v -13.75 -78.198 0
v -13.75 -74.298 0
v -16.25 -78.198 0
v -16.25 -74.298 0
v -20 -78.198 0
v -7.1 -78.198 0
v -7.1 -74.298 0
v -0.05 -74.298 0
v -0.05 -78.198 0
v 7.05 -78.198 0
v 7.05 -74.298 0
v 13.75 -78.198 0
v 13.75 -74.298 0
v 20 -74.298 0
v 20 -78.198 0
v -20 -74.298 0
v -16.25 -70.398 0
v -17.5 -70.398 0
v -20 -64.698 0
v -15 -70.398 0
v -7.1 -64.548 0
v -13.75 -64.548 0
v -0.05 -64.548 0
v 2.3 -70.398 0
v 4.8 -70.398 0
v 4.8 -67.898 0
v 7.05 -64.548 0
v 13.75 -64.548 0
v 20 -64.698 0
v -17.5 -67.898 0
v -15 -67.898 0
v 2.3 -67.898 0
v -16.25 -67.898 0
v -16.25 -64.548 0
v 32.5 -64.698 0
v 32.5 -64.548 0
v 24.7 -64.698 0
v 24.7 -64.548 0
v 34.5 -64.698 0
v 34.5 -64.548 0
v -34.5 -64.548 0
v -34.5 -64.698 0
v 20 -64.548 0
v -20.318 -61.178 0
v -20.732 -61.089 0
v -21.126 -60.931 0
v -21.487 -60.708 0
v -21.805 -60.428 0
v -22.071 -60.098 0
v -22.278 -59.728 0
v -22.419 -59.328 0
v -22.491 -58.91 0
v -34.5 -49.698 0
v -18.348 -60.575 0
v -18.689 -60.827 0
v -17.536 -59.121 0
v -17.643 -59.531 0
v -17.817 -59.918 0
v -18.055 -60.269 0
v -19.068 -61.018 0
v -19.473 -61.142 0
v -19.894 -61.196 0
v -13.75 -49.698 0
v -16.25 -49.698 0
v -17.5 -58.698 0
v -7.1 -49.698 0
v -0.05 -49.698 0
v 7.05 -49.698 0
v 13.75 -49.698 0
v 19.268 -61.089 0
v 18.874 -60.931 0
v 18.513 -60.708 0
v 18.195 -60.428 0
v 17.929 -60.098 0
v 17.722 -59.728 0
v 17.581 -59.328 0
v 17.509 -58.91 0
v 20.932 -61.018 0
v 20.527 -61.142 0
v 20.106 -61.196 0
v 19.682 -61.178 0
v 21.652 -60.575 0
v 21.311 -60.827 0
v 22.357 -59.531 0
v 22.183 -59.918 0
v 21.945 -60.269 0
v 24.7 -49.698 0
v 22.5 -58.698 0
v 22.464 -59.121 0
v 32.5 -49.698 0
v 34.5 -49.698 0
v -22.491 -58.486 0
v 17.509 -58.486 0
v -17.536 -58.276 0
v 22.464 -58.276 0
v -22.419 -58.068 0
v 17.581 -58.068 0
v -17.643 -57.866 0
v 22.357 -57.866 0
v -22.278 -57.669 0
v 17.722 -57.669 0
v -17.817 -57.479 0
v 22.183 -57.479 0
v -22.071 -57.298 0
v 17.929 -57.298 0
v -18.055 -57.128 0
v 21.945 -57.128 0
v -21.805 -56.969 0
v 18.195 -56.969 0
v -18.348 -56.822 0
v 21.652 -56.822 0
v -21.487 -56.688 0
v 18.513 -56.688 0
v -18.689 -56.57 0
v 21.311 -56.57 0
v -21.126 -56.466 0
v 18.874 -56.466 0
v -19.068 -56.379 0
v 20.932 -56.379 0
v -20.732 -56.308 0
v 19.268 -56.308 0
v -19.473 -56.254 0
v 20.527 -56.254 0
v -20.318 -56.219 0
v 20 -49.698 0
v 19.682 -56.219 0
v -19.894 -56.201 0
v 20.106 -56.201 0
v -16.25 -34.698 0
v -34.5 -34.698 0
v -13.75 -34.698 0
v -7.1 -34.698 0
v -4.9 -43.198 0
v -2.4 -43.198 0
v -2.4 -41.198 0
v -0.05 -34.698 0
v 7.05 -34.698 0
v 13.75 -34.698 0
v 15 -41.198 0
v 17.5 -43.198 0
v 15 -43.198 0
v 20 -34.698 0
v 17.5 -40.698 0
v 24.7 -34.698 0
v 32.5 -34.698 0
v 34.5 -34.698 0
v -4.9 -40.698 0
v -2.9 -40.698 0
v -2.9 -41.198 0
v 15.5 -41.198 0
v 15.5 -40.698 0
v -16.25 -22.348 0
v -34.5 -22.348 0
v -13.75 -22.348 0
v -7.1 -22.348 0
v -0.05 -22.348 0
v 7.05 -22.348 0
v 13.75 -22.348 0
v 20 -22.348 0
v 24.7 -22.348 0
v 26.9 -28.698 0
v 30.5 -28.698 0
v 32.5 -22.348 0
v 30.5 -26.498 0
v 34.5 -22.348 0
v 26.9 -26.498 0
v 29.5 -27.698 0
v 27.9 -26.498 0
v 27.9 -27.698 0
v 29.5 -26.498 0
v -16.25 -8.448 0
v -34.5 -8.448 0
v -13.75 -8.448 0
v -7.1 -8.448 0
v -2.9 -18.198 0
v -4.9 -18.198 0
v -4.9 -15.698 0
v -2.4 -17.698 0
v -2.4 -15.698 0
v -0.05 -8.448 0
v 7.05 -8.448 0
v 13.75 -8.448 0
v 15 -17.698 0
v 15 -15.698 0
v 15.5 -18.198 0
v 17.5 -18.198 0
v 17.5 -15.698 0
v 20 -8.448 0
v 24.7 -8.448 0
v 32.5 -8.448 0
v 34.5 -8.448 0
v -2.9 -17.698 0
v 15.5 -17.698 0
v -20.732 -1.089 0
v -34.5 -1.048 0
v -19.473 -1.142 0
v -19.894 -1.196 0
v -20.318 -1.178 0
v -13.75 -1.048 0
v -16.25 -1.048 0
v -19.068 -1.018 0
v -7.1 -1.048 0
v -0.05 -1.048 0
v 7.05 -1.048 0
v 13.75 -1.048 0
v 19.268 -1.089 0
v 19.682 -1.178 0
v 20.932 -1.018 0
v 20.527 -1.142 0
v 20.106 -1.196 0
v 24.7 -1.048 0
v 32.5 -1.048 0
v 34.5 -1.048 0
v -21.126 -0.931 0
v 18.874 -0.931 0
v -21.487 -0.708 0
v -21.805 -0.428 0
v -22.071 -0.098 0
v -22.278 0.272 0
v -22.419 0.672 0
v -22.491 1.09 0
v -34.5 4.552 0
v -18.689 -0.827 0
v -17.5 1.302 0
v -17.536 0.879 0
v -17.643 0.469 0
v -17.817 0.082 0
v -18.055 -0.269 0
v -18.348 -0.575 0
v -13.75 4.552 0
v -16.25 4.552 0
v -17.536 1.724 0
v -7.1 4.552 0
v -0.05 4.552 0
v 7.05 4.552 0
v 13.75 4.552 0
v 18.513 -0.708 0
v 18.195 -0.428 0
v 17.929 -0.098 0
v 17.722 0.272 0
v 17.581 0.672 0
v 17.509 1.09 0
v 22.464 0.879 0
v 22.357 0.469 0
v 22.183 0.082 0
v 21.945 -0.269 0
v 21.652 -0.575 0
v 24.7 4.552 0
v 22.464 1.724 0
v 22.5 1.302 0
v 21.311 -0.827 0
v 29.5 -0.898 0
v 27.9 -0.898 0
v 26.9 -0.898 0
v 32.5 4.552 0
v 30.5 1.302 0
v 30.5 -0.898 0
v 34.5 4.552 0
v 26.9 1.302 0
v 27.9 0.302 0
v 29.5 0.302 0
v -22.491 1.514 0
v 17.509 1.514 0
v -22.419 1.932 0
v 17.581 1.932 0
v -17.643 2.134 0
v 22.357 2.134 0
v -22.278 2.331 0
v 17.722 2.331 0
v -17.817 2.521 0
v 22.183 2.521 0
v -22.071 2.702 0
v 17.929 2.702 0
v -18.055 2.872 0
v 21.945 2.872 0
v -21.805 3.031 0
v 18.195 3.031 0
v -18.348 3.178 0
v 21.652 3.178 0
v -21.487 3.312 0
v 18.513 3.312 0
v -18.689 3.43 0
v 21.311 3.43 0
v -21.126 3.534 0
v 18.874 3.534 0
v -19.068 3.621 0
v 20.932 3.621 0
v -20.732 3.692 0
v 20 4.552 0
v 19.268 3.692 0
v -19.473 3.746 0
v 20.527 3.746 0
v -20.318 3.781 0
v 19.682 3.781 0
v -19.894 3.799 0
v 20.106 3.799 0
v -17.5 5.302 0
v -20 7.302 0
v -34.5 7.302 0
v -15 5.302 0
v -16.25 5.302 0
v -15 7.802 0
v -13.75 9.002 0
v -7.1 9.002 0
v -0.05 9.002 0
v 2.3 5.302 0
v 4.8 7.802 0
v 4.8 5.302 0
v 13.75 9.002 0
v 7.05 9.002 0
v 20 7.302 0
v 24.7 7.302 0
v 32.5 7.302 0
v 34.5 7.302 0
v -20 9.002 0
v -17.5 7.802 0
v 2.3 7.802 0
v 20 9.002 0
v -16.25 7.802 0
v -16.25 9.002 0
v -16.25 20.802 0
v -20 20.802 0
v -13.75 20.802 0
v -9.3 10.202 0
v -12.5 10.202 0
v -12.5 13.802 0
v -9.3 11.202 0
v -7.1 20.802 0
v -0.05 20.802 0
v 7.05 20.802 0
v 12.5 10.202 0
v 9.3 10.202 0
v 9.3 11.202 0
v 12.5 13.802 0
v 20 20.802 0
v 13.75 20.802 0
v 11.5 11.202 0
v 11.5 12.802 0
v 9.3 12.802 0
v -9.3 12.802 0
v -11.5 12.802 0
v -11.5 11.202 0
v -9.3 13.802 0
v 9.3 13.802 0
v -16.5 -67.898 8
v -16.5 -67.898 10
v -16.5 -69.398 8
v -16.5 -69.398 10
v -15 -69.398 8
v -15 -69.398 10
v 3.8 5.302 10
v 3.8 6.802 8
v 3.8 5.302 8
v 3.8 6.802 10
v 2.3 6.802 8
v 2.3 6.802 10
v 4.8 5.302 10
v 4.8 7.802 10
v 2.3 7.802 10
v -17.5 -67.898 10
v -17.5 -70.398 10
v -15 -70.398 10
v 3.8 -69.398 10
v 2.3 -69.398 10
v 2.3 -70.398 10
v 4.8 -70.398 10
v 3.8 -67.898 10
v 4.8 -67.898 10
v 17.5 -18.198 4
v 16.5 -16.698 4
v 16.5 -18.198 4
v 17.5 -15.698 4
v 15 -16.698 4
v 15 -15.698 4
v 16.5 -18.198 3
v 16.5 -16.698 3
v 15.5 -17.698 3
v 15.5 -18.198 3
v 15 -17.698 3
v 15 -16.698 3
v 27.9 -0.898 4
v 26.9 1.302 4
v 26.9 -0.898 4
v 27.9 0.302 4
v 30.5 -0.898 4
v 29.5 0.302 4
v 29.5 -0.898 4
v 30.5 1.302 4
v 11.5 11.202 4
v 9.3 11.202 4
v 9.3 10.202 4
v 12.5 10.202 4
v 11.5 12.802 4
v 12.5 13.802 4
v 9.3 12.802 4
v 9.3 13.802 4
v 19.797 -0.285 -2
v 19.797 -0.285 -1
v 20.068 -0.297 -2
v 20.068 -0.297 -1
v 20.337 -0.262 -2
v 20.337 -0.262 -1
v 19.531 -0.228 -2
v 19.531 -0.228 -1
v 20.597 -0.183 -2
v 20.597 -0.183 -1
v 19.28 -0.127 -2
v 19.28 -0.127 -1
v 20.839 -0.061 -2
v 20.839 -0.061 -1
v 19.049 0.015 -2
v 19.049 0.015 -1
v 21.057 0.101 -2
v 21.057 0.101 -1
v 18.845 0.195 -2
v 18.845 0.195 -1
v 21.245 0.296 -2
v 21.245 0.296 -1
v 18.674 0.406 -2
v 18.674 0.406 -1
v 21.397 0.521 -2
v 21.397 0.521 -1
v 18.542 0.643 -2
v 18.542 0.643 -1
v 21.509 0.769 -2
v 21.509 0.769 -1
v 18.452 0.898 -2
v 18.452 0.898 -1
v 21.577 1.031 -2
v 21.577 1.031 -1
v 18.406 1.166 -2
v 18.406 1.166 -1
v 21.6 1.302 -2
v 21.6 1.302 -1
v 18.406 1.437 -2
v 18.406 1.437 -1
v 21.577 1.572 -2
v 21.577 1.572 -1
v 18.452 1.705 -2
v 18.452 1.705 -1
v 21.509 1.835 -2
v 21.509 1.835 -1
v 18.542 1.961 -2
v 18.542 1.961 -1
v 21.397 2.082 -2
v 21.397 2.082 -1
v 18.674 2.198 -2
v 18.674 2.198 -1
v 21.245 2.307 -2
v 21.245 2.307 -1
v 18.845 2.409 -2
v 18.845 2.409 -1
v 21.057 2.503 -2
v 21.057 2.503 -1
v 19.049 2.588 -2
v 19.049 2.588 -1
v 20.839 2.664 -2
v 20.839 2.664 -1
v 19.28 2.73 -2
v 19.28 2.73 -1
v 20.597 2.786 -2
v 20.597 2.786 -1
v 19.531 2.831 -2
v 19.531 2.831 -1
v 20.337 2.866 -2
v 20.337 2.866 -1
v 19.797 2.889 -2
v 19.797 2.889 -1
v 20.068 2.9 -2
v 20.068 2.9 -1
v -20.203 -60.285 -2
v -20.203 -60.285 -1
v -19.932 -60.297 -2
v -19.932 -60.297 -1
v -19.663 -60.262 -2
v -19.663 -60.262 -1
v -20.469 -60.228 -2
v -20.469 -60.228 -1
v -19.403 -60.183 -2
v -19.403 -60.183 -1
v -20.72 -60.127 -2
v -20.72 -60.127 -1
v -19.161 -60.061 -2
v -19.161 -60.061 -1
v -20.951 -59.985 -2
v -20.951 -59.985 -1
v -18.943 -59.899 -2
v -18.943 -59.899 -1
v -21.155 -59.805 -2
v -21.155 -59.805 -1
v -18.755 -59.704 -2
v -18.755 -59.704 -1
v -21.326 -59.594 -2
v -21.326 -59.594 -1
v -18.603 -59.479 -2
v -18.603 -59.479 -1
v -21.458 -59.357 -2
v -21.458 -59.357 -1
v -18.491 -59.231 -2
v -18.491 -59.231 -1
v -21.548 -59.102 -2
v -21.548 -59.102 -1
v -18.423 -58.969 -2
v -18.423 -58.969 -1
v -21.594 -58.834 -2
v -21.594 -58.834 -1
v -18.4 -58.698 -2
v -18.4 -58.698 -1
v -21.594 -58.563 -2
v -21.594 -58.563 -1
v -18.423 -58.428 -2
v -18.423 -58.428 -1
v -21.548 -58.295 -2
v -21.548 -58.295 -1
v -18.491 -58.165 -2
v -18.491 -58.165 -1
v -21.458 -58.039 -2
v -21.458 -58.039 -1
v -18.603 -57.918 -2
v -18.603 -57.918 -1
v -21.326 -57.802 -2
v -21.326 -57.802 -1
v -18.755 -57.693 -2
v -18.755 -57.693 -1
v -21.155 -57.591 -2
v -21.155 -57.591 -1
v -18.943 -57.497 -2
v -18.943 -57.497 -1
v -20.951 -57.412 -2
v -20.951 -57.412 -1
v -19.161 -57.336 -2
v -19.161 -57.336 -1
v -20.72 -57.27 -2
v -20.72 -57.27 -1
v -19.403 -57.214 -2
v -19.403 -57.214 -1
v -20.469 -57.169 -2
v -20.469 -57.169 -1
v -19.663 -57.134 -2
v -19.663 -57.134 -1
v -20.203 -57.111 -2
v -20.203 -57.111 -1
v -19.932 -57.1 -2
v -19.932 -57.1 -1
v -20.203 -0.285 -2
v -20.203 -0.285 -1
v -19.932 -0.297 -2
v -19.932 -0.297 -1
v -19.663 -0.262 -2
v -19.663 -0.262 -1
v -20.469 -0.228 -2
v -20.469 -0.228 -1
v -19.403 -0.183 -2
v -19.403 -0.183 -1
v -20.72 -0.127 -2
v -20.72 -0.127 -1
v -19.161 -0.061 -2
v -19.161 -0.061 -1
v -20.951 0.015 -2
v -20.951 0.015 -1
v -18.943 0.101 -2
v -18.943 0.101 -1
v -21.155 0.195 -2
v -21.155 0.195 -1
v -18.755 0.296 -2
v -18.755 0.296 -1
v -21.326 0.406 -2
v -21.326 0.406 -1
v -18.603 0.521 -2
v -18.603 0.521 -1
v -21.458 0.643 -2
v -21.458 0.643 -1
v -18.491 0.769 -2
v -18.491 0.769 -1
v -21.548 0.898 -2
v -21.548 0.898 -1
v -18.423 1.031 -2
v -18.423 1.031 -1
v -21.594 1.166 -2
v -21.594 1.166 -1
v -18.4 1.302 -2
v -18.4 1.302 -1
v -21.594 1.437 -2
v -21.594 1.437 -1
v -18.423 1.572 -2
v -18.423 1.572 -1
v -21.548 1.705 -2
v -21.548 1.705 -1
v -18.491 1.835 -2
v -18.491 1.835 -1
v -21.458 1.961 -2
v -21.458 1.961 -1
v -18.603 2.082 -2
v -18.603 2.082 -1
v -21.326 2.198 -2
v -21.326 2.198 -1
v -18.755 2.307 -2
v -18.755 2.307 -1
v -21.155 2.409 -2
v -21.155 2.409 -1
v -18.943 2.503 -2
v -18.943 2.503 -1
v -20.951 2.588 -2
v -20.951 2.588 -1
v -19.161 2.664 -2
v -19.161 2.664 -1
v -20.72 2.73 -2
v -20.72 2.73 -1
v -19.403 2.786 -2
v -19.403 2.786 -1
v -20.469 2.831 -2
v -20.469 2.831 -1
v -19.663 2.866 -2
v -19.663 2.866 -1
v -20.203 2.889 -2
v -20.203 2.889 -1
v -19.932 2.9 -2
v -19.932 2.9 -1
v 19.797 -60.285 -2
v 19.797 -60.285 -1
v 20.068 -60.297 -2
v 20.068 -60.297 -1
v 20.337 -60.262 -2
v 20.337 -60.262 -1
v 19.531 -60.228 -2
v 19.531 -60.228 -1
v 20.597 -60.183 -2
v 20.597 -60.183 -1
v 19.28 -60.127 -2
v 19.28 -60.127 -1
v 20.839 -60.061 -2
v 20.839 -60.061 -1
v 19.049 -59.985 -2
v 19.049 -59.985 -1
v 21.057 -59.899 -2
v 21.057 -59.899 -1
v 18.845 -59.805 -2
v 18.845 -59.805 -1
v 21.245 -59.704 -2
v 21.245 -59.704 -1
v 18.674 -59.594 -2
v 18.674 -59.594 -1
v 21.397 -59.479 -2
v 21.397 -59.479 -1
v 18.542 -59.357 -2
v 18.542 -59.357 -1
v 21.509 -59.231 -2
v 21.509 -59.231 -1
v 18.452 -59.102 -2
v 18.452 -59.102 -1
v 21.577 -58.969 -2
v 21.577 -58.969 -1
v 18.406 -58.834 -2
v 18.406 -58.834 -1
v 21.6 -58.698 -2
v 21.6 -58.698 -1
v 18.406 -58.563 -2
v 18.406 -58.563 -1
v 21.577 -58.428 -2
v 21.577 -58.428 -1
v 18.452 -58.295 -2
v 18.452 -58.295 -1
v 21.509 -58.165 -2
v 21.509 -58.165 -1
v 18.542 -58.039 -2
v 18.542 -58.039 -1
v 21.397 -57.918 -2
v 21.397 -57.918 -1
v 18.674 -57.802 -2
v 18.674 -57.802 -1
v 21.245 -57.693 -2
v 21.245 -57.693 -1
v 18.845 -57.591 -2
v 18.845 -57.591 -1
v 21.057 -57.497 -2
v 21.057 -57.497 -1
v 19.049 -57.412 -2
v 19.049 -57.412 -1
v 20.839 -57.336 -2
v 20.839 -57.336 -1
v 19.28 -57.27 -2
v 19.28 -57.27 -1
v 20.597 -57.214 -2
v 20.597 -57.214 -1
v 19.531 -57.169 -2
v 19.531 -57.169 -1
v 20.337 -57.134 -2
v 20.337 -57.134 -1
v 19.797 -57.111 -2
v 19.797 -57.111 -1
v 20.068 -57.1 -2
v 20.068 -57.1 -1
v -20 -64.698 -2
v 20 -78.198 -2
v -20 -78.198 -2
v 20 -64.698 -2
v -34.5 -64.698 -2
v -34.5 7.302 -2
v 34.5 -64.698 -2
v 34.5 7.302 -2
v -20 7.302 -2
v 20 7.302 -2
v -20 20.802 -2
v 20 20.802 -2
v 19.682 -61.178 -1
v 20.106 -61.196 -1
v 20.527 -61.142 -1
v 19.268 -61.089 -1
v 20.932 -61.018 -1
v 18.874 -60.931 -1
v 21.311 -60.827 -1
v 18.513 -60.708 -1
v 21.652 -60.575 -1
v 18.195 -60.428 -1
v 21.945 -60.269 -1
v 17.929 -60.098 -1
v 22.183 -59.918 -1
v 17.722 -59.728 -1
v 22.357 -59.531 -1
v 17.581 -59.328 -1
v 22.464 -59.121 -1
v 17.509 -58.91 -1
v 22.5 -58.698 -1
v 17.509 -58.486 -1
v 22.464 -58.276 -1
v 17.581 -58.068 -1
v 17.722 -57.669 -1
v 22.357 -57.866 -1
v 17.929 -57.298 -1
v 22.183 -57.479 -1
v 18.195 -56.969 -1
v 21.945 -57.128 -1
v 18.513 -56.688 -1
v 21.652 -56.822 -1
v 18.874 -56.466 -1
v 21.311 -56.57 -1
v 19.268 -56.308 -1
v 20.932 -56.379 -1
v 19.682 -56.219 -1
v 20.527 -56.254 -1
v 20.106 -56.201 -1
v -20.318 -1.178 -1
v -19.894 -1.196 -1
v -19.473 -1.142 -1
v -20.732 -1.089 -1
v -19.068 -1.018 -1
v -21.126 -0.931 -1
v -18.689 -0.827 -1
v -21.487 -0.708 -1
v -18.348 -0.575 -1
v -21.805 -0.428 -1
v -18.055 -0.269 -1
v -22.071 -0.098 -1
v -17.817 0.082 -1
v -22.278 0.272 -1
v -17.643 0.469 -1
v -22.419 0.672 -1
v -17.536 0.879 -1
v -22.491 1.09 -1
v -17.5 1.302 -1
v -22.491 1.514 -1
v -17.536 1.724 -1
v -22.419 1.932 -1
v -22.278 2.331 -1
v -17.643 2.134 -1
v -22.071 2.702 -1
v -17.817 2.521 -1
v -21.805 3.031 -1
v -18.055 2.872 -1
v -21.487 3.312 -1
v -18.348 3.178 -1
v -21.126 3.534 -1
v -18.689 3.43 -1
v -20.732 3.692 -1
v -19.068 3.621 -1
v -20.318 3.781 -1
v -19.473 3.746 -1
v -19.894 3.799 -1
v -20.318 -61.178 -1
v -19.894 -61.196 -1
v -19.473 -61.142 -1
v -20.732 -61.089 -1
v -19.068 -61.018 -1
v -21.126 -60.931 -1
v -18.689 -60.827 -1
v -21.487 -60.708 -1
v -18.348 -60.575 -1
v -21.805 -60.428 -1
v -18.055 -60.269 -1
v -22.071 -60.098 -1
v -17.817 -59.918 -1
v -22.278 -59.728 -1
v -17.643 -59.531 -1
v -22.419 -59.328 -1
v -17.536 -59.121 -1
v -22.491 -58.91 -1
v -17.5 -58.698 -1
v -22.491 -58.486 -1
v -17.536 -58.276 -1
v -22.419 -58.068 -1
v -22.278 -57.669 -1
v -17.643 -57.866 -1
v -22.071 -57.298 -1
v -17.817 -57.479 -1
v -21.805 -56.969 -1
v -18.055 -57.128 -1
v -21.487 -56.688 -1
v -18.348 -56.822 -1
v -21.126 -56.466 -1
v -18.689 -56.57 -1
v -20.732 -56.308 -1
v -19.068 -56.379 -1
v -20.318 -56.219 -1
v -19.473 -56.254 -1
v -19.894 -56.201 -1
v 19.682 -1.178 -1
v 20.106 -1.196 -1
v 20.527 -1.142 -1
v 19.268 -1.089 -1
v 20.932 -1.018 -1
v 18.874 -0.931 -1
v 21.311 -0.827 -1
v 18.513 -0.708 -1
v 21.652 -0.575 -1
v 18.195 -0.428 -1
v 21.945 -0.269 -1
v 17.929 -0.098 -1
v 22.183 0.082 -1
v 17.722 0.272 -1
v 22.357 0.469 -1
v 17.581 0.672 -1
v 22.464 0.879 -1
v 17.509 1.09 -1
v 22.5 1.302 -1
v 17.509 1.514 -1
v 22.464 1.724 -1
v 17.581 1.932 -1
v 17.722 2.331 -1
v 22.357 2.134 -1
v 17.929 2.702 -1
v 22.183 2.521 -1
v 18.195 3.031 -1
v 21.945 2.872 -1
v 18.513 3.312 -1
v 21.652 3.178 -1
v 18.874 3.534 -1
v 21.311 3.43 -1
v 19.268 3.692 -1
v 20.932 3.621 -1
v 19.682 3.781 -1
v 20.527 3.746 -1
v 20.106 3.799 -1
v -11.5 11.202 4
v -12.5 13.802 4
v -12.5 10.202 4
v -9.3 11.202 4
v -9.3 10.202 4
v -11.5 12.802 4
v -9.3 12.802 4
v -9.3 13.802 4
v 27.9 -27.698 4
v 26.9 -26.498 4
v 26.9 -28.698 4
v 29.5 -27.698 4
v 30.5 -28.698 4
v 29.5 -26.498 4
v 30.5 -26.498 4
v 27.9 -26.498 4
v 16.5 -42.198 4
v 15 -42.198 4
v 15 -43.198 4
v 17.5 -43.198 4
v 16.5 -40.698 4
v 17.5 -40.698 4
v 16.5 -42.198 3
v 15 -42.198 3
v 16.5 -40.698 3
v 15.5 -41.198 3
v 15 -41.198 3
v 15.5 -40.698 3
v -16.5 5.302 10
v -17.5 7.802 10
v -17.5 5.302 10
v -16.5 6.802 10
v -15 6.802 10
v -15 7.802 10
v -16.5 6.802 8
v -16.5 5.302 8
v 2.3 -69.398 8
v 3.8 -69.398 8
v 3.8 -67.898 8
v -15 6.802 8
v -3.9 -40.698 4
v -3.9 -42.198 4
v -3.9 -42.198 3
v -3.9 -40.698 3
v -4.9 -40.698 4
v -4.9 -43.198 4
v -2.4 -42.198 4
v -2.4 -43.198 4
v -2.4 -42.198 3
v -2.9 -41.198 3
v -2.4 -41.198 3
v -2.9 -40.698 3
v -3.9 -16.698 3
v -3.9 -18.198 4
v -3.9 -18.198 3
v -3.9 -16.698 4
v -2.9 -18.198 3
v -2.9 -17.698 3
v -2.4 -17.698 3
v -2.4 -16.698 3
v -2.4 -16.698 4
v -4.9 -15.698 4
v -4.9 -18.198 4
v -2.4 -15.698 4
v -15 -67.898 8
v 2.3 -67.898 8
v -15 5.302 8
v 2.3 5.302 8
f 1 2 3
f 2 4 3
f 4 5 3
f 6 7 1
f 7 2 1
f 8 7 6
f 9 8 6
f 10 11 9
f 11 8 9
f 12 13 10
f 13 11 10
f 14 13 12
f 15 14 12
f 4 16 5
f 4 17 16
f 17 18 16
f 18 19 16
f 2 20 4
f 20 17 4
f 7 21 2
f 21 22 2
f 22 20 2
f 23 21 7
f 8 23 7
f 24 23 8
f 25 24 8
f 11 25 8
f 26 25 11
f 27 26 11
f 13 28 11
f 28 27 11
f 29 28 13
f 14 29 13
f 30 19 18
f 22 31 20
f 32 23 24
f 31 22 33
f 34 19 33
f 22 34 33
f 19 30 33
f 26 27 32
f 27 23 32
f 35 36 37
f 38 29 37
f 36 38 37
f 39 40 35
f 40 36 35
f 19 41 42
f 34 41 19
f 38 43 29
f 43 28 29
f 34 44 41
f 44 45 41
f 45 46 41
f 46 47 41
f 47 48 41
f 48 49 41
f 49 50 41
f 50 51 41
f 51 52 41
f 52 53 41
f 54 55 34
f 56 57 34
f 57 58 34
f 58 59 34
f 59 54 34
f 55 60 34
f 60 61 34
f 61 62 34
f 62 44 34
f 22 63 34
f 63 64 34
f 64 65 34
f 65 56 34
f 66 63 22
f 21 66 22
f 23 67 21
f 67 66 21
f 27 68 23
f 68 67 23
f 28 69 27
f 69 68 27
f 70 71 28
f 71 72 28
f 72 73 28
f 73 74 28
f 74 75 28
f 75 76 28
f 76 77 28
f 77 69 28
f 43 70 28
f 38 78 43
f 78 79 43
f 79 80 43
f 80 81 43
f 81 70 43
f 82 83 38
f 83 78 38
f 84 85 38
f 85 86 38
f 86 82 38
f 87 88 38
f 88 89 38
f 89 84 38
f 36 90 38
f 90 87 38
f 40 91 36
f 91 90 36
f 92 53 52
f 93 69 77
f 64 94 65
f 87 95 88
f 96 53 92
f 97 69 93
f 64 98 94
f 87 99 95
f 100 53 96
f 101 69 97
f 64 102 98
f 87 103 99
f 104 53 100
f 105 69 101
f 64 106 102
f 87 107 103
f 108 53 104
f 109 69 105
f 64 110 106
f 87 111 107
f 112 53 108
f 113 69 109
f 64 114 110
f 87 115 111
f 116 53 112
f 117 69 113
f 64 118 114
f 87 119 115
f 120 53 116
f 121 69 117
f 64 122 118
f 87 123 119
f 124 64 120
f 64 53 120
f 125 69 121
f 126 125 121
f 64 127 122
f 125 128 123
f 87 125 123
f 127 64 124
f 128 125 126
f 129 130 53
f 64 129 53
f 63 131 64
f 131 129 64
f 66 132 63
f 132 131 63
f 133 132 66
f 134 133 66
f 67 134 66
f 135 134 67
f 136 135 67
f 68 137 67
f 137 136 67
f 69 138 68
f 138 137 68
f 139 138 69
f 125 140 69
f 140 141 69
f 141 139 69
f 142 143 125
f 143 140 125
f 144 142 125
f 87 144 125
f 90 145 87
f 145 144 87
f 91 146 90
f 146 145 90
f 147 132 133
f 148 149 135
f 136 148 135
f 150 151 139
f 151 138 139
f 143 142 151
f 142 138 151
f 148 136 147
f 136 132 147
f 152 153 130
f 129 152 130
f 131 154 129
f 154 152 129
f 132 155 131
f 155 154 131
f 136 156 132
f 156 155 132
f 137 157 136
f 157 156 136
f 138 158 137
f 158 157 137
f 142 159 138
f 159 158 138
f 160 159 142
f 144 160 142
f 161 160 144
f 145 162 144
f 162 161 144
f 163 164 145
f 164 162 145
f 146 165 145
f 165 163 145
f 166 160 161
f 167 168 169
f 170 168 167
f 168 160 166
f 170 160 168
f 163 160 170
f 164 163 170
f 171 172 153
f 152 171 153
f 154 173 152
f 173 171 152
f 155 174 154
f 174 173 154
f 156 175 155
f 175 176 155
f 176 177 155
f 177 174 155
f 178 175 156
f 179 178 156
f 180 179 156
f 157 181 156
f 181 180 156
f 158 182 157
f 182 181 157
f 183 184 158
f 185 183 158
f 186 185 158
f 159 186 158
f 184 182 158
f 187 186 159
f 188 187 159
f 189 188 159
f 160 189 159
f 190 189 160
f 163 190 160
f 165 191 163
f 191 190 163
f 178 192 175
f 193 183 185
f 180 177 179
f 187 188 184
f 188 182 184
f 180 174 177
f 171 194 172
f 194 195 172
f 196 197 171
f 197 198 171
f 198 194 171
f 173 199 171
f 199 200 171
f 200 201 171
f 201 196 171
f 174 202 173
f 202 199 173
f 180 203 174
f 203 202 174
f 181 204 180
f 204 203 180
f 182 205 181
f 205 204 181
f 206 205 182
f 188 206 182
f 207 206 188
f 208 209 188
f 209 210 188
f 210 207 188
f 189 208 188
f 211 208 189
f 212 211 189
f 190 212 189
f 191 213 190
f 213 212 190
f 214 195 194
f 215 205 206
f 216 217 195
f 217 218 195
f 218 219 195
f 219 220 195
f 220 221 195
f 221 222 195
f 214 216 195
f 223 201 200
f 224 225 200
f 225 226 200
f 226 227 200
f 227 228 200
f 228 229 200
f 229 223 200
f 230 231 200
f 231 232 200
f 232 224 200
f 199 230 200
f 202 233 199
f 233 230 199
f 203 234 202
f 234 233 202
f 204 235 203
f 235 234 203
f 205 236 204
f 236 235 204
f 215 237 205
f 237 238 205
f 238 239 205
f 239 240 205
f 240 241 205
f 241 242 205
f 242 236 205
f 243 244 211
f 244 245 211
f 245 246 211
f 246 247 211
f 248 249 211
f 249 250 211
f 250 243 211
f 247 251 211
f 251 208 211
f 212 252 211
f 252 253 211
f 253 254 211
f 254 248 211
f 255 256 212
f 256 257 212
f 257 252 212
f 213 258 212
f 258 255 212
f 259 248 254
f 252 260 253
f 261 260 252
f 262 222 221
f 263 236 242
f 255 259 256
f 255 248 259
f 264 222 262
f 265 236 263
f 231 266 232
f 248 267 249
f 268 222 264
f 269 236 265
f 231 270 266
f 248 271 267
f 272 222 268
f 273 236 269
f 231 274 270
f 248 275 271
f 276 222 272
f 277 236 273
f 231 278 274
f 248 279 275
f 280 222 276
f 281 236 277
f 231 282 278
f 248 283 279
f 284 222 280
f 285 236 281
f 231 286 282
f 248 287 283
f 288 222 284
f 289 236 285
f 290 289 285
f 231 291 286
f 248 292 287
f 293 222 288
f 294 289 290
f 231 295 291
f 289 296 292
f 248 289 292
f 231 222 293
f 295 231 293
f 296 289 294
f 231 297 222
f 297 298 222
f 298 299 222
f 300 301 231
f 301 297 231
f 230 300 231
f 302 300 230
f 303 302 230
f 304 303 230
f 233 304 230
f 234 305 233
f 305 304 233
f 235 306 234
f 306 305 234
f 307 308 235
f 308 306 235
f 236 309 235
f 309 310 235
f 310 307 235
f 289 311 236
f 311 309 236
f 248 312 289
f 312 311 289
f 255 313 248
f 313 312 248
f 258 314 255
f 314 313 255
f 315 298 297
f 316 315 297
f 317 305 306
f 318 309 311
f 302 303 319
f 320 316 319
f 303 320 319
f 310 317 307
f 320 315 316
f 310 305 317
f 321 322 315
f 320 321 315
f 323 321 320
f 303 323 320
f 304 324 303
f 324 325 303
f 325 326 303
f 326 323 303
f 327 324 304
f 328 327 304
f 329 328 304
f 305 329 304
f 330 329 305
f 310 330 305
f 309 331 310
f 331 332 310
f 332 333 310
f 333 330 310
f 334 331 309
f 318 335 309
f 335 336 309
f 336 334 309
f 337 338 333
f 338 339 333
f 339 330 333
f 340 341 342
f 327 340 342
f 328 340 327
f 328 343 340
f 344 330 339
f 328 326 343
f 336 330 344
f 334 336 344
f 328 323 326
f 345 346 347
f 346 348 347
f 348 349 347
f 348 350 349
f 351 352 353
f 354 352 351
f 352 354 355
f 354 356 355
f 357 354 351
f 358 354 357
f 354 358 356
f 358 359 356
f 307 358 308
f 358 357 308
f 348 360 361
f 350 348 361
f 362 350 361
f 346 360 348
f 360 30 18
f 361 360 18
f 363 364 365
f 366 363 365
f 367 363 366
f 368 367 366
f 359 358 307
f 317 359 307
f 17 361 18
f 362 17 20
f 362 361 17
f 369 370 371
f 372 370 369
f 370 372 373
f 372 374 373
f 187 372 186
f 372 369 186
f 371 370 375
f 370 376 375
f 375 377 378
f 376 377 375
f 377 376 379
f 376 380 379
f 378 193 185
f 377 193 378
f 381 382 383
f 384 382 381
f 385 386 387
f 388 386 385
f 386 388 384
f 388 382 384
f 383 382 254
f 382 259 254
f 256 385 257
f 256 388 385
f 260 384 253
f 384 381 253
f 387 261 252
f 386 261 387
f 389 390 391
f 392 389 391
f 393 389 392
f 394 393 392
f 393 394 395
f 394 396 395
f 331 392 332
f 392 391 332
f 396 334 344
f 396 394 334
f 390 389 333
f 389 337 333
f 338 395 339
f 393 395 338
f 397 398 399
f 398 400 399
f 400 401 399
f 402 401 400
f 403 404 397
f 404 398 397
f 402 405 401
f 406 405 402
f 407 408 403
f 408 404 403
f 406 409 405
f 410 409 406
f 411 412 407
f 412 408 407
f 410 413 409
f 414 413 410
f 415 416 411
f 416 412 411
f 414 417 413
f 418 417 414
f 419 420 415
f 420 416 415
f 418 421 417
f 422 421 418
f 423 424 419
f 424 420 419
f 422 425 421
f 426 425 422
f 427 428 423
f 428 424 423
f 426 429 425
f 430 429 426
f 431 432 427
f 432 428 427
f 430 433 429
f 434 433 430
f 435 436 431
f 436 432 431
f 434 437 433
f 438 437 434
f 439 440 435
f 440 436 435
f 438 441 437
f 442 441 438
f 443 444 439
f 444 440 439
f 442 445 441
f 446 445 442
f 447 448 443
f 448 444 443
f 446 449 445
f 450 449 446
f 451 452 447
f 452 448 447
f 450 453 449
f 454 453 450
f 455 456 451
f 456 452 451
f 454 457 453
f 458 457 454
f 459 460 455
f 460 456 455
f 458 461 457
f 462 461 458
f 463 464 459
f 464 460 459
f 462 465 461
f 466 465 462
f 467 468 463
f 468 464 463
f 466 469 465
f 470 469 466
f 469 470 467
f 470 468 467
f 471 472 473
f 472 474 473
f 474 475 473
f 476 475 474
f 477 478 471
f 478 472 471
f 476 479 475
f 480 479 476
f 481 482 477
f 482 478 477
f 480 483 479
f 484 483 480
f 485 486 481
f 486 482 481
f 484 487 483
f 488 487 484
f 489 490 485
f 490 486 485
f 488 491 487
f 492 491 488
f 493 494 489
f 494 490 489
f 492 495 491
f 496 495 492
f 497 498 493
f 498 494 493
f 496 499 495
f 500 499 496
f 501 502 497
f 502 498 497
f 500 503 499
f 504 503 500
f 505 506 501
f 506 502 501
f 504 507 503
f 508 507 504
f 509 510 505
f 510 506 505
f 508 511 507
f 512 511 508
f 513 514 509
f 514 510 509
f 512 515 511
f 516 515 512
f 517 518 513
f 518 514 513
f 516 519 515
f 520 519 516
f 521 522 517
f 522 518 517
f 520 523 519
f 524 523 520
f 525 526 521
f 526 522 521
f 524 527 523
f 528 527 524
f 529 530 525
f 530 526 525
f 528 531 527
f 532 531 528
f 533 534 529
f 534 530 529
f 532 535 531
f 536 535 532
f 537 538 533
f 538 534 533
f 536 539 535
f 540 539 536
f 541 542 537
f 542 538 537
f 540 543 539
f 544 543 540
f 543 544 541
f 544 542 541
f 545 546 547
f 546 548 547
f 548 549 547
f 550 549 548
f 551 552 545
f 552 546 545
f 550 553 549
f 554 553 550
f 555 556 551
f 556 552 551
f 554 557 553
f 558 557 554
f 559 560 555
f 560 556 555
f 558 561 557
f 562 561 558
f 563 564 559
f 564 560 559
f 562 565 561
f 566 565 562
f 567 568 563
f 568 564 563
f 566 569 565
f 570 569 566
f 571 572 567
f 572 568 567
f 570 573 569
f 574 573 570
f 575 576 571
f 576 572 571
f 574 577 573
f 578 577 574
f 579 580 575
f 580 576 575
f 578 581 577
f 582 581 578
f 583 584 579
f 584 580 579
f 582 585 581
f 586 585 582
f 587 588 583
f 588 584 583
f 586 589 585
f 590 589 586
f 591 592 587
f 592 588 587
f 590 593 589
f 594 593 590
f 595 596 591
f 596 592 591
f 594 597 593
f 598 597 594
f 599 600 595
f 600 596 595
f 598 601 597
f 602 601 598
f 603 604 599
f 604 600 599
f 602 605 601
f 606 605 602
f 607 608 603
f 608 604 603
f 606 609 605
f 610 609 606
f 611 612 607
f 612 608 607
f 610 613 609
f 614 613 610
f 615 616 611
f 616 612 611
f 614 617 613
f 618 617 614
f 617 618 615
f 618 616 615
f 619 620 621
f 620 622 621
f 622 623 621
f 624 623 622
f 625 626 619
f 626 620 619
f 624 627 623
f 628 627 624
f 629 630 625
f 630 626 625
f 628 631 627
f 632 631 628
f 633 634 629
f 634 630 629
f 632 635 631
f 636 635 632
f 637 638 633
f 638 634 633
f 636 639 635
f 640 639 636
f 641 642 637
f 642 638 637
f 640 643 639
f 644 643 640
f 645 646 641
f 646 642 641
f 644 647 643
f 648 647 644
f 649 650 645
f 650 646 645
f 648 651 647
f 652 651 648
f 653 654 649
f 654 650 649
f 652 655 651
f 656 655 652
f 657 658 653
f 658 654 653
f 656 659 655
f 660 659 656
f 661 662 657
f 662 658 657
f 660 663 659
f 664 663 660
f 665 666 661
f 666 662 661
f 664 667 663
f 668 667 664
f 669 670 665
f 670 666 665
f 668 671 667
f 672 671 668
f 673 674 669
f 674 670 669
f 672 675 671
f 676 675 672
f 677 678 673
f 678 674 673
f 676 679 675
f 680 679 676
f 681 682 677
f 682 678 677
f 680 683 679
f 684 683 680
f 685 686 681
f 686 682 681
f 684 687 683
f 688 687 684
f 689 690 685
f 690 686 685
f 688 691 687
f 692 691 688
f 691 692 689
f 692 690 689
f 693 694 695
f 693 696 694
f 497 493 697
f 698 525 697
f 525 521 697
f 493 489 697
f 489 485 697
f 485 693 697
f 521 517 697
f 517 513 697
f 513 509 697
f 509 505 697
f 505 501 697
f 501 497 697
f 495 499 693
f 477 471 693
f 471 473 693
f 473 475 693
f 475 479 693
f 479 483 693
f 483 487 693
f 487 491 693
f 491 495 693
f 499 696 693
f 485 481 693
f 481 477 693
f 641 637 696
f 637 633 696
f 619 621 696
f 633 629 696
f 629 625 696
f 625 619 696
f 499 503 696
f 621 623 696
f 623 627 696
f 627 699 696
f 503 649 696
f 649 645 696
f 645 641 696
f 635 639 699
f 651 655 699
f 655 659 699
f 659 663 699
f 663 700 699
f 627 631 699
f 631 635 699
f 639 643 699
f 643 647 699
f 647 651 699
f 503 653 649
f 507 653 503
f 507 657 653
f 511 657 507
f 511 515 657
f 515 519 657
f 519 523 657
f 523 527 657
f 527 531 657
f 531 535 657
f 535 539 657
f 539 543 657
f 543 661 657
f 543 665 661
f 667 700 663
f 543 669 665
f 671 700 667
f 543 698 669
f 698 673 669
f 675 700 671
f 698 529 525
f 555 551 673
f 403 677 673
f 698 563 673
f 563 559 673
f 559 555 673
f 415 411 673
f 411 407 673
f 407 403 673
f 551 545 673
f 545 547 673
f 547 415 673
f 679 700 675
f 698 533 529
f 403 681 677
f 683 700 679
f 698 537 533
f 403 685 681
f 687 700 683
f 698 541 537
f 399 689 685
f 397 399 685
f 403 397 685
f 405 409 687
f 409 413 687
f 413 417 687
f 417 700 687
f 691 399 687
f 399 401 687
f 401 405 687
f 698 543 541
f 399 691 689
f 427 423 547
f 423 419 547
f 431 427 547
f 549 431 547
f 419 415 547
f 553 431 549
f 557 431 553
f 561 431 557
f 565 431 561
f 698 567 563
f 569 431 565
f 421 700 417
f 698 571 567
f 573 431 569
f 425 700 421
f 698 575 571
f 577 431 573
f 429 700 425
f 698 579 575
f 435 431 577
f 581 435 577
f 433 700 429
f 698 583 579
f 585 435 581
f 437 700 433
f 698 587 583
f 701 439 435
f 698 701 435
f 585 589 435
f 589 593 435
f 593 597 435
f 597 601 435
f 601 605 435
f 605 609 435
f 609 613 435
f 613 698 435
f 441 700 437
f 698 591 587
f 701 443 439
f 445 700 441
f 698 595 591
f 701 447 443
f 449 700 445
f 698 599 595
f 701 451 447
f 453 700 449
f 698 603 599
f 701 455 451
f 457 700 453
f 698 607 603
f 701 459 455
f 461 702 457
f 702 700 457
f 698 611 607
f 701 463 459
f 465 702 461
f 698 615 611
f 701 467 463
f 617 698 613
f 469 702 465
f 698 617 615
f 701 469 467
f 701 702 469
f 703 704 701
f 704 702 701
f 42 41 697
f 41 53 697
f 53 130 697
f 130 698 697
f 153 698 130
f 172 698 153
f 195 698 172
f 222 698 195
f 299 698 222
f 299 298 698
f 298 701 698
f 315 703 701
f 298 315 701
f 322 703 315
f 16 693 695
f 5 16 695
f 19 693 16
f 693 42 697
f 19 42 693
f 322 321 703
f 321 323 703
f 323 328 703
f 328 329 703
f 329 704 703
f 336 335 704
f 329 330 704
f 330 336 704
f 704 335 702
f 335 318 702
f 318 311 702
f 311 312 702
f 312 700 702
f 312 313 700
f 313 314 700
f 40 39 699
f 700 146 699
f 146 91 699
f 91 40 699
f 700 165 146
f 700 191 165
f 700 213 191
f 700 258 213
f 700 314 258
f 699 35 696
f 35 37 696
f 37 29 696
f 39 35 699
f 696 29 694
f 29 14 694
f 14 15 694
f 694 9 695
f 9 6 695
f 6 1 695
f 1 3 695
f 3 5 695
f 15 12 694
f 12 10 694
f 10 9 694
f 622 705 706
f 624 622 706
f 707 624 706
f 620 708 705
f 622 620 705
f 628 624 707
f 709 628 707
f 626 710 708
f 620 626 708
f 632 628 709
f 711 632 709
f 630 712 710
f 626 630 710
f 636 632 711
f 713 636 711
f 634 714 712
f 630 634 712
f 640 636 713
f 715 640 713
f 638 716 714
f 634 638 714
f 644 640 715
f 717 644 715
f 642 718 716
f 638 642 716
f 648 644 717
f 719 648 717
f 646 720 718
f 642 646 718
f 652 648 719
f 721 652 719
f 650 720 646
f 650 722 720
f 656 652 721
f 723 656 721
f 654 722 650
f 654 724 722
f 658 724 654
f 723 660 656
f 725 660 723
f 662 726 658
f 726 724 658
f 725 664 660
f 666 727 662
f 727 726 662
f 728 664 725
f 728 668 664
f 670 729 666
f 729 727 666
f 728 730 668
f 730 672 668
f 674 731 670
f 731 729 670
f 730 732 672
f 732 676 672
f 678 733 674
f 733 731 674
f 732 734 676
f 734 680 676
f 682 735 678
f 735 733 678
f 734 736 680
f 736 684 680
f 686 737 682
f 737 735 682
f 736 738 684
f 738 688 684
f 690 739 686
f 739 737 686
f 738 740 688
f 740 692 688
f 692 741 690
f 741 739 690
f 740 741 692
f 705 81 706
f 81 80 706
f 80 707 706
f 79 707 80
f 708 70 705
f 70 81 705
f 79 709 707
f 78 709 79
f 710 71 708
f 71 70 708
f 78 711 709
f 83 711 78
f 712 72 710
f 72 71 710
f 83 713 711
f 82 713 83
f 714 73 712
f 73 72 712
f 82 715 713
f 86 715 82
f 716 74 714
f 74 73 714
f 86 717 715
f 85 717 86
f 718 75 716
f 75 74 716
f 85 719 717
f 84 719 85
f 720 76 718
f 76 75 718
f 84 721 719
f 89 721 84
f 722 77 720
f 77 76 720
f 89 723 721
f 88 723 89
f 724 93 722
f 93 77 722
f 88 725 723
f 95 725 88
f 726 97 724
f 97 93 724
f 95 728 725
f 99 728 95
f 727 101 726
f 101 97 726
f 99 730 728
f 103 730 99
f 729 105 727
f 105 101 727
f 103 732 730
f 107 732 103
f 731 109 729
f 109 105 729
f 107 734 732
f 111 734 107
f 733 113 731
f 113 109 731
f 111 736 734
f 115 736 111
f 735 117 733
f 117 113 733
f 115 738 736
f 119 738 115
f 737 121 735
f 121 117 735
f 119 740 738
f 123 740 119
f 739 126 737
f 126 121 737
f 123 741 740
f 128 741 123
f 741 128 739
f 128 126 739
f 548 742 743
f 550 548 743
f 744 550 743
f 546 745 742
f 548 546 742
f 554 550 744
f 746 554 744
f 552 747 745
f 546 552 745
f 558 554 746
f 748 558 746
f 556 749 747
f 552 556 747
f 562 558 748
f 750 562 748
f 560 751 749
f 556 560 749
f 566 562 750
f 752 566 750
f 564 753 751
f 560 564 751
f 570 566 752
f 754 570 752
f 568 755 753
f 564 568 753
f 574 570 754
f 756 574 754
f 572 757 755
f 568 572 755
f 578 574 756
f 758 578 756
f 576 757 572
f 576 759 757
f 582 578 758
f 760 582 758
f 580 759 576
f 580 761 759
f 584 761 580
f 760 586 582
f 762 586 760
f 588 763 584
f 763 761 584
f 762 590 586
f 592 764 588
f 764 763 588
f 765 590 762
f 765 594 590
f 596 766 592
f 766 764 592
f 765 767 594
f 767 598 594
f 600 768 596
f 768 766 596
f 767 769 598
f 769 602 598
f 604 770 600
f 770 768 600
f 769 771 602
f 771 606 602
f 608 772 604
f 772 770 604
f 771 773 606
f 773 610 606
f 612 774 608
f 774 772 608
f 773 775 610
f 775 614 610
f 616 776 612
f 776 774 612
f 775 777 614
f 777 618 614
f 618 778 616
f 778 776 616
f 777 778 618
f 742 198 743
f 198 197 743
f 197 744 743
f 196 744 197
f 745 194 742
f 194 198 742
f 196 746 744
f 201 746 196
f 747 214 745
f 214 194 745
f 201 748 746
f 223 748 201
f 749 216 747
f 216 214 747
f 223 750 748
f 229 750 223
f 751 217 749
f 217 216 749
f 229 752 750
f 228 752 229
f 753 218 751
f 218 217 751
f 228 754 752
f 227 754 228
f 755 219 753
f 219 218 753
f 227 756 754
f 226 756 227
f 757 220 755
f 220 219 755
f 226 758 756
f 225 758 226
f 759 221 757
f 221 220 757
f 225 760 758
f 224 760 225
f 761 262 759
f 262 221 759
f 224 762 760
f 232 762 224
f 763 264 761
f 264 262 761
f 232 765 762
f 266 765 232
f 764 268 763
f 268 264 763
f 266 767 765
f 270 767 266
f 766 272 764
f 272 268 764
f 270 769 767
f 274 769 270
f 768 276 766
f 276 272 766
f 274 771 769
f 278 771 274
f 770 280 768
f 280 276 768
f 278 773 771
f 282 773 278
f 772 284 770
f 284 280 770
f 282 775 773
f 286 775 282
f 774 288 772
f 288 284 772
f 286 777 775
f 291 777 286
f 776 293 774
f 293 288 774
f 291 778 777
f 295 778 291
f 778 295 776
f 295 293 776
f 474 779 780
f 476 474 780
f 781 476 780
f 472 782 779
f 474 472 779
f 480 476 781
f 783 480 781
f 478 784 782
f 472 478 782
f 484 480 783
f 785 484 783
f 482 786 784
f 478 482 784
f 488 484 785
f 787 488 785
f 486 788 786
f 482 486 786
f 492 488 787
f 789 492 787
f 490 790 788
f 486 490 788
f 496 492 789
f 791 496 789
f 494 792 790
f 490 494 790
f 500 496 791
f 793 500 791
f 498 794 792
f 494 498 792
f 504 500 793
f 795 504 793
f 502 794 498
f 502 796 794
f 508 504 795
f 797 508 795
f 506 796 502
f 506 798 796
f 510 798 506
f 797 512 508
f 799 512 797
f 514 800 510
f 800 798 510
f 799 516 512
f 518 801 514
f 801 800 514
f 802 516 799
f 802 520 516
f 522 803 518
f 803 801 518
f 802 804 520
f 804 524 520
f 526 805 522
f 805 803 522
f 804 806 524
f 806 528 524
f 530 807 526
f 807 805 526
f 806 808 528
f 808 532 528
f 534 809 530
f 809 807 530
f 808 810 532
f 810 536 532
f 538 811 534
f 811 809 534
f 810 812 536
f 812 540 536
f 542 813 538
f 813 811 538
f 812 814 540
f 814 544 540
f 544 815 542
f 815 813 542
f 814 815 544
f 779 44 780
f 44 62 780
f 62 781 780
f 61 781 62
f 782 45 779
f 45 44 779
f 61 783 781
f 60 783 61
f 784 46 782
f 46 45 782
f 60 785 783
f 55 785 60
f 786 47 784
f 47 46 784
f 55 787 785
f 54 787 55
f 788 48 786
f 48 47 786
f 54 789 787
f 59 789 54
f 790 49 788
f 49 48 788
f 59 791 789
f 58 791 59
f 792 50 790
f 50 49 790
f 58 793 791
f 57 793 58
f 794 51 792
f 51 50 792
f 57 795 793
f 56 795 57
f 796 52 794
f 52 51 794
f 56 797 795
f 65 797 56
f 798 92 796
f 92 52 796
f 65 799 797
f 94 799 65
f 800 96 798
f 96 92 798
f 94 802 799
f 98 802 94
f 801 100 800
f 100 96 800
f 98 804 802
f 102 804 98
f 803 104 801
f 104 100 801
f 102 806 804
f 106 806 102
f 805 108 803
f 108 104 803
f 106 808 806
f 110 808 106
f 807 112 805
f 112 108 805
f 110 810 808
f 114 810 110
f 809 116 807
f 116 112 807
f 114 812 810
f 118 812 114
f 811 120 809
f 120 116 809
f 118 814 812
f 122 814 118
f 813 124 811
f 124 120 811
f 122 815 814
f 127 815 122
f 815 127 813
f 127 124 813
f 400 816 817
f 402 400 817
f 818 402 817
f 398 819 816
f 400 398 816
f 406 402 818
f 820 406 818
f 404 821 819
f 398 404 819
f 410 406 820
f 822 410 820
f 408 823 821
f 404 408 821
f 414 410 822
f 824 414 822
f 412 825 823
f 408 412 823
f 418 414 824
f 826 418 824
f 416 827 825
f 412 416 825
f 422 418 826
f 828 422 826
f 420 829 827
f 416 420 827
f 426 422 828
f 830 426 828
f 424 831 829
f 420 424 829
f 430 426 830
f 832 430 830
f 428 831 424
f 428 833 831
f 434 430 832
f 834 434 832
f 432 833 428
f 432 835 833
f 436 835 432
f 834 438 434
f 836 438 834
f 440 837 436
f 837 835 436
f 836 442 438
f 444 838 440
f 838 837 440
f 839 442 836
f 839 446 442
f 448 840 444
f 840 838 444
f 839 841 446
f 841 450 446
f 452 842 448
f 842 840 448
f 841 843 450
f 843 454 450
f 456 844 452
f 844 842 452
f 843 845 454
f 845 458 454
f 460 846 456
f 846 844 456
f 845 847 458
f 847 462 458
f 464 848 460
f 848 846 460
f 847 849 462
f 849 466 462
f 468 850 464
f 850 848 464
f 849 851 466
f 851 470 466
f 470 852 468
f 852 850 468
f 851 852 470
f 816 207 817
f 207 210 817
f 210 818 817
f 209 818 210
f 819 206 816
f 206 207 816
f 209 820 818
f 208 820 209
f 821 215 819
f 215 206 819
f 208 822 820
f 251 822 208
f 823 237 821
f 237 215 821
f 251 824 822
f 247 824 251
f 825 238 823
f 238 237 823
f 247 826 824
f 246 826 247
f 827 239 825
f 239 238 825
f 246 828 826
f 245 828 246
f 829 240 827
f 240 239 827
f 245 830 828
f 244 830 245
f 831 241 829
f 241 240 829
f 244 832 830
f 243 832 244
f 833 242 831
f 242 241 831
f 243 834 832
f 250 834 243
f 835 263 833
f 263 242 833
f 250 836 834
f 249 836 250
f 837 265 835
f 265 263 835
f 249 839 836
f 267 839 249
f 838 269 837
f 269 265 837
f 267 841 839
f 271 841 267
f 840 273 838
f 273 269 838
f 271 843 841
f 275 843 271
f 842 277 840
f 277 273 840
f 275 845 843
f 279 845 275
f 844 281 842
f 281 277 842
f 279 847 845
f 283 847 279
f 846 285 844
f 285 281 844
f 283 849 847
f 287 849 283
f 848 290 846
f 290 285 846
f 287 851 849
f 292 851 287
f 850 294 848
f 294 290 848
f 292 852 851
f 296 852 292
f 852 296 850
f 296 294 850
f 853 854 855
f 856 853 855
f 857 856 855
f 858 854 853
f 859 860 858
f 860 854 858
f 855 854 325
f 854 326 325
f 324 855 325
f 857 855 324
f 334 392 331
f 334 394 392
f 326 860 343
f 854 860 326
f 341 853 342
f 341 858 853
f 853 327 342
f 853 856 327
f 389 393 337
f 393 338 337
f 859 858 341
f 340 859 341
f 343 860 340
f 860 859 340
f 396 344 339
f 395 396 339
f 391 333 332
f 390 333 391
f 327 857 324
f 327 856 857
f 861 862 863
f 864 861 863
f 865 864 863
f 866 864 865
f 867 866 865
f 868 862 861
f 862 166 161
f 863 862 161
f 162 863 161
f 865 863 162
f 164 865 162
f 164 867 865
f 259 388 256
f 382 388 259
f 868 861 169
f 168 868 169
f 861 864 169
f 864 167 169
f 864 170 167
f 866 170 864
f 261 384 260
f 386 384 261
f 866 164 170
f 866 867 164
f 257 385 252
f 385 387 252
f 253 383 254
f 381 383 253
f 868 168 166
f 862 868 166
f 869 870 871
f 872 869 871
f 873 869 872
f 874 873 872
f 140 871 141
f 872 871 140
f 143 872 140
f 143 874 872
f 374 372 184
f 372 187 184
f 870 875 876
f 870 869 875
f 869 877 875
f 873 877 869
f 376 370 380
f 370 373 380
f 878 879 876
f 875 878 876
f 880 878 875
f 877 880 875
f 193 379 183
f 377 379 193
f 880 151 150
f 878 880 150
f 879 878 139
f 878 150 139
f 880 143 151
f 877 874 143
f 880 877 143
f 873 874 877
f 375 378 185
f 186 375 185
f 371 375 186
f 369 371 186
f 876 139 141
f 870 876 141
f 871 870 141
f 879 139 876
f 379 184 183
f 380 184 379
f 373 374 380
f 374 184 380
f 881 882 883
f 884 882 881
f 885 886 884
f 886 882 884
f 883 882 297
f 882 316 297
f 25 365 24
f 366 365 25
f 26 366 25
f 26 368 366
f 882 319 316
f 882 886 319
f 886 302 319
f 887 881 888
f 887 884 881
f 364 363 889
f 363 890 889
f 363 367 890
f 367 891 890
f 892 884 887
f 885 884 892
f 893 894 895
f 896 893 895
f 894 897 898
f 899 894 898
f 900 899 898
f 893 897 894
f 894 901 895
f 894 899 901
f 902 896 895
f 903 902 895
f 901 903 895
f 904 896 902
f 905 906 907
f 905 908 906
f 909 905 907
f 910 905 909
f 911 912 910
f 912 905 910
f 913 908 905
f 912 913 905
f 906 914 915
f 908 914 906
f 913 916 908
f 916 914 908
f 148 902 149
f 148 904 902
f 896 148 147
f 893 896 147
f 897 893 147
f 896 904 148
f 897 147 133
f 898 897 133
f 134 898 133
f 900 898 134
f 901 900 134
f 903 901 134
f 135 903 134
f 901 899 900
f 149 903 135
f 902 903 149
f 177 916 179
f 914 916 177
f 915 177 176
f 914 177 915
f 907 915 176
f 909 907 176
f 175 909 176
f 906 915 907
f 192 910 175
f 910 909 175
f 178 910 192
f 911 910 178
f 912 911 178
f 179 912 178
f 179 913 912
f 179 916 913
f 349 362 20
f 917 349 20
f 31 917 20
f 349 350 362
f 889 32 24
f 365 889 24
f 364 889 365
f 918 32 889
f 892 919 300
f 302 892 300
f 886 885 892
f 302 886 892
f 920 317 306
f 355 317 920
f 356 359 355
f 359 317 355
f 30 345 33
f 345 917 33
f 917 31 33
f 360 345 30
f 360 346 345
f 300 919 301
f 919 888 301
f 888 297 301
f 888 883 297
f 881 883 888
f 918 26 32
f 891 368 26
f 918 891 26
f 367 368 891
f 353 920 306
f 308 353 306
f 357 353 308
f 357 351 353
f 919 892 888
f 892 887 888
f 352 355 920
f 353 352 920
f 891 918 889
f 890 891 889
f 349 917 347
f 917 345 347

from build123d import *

# Parameters (mm, degrees)
BOSS_EXTRUDE1_DEPTH = 2
SKETCH2_R           = 1.6
CUT_EXTRUDE1_DEPTH  = 2
SKETCH5_R           = 2.5
CUT_EXTRUDE2_DEPTH  = 1
SKETCH6_W           = 25
SKETCH6_H           = 3.6
SKETCH6_W_2         = 23
SKETCH6_H_2         = 1.6
BOSS_EXTRUDE2_DEPTH = 4
SKETCH7_W           = 18.6
SKETCH7_H           = 4
CUT_EXTRUDE3_DEPTH  = 15
SKETCH9_W           = 3.6
SKETCH9_H           = 30
SKETCH9_W_2         = 1.6
SKETCH9_H_2         = 28
BOSS_EXTRUDE4_DEPTH = 4
SKETCH10_W          = 4
SKETCH10_H          = 25.6
CUT_EXTRUDE4_DEPTH  = 4
SKETCH11_W          = 22.4
SKETCH11_H          = 27.5
SKETCH11_W_2        = 20.4
SKETCH11_H_2        = 25.5
BOSS_EXTRUDE5_DEPTH = 4
SKETCH12_W          = 20.4
SKETCH12_H          = 25.5
BOSS_EXTRUDE6_DEPTH = 3
SKETCH13_W          = 18.4
SKETCH13_H          = 23.5
CUT_EXTRUDE5_DEPTH  = 3
SKETCH14_W          = 4
SKETCH14_H          = 22.5
CUT_EXTRUDE6_DEPTH  = 30
SKETCH15_W          = 17.4
SKETCH15_H          = 4
CUT_EXTRUDE7_DEPTH  = 30
SKETCH16_W          = 22.3
SKETCH16_H          = 78.2
SKETCH16_W_2        = 20.3
SKETCH16_H_2        = 76.2
BOSS_EXTRUDE7_DEPTH = 10
SKETCH17_W          = 17.3
SKETCH17_H          = 10
CUT_EXTRUDE8_DEPTH  = 10
CUT_EXTRUDE9_REACH  = 95.2
SKETCH18_W          = 17.3
SKETCH18_H          = 10
CUT_EXTRUDE10_REACH = 96.44
SKETCH19_W          = 10
SKETCH19_H          = 73.2
CUT_EXTRUDE11_REACH = 90.088
SKETCH20_W          = 10
SKETCH20_H          = 73.2
SKETCH21_W          = 1.5
SKETCH21_H          = 1.5
BOSS_EXTRUDE8_DEPTH = 8


with BuildPart() as part:
    # 3DSketch1 → Boss-Extrude1 (new body)
    with BuildSketch(Plane(origin=(-20, 20.801620861, 0), x_dir=(0.3746178943835793, -0.927179288599359, 0), z_dir=(0, 0, 1))):
        Polygon((0, 0), (14.984715775, 37.087171544), (27.501636171, 32.02982997), (32.93359564, 45.473929654), (99.690504419, 18.501441259), (94.258544951, 5.057341574), (106.775465347, 0), (91.790749571, -37.087171544), (79.273829175, -32.02982997), (73.841869707, -45.473929654), (7.084960928, -18.501441259), (12.516920396, -5.057341574), align=None)
    extrude(amount=-BOSS_EXTRUDE1_DEPTH)

    # Sketch2 → Cut-Extrude1 (cut)
    with BuildSketch(Plane.XY):
        with Locations((-20, 1.301620861)):
            Circle(SKETCH2_R)
        with Locations((20, 1.301620861)):
            Circle(SKETCH2_R)
        with Locations((20, -58.698379139)):
            Circle(SKETCH2_R)
        with Locations((-20, -58.698379139)):
            Circle(SKETCH2_R)
    extrude(amount=-CUT_EXTRUDE1_DEPTH, mode=Mode.SUBTRACT)

    # Sketch5 → Cut-Extrude2 (cut)
    with BuildSketch(Plane.XY):
        with Locations((-20, 1.301620861)):
            Circle(SKETCH5_R)
        with Locations((20, 1.301620861)):
            Circle(SKETCH5_R)
        with Locations((20, -58.698379139)):
            Circle(SKETCH5_R)
        with Locations((-20, -58.698379139)):
            Circle(SKETCH5_R)
    extrude(amount=-CUT_EXTRUDE2_DEPTH, mode=Mode.SUBTRACT)

    # Sketch6 → Boss-Extrude2 (add)
    with BuildSketch(Plane.XY):
        with Locations((0, 12.001620861)):
            Rectangle(SKETCH6_W, SKETCH6_H)
        with Locations((0, 12.001620861)):
            Rectangle(SKETCH6_W_2, SKETCH6_H_2, mode=Mode.SUBTRACT)
    extrude(amount=BOSS_EXTRUDE2_DEPTH)

    # Sketch7 → Cut-Extrude3 (cut)
    with BuildSketch(Plane(origin=(0, 13.801620861, 0), x_dir=(1, 0, 0), z_dir=(0, 1, 0))):
        with Locations((0, -2)):
            Rectangle(SKETCH7_W, SKETCH7_H)
    extrude(amount=-CUT_EXTRUDE3_DEPTH, mode=Mode.SUBTRACT)

    # Sketch9 → Boss-Extrude4 (add)
    with BuildSketch(Plane.XY):
        with Locations((28.7, -13.698379139)):
            Rectangle(SKETCH9_W, SKETCH9_H)
        with Locations((28.7, -13.698379139)):
            Rectangle(SKETCH9_W_2, SKETCH9_H_2, mode=Mode.SUBTRACT)
    extrude(amount=BOSS_EXTRUDE4_DEPTH)

    # Sketch10 → Cut-Extrude4 (cut)
    with BuildSketch(Plane(origin=(30.5, 0, 0), x_dir=(0, 0, -1), z_dir=(1, 0, 0))):
        with Locations((-2, -13.698379139)):
            Rectangle(SKETCH10_W, SKETCH10_H)
    extrude(amount=-CUT_EXTRUDE4_DEPTH, mode=Mode.SUBTRACT)

    # Sketch11 → Boss-Extrude5 (add)
    with BuildSketch(Plane.XY):
        with Locations((6.3, -29.448379139)):
            Rectangle(SKETCH11_W, SKETCH11_H)
        with Locations((6.3, -29.448379139)):
            Rectangle(SKETCH11_W_2, SKETCH11_H_2, mode=Mode.SUBTRACT)
    extrude(amount=BOSS_EXTRUDE5_DEPTH)

    # Sketch12 → Boss-Extrude6 (add)
    with BuildSketch(Plane.XY):
        with Locations((6.3, -29.448379139)):
            Rectangle(SKETCH12_W, SKETCH12_H)
    extrude(amount=BOSS_EXTRUDE6_DEPTH)

    # Sketch13 → Cut-Extrude5 (cut)
    with BuildSketch(Plane.XY.offset(3)):
        with Locations((6.3, -29.448379139)):
            Rectangle(SKETCH13_W, SKETCH13_H)
    extrude(amount=-CUT_EXTRUDE5_DEPTH, mode=Mode.SUBTRACT)

    # Sketch14 → Cut-Extrude6 (cut)
    with BuildSketch(Plane.ZY.offset(4.9)):
        with Locations((2, -29.448379139)):
            Rectangle(SKETCH14_W, SKETCH14_H)
    extrude(amount=-CUT_EXTRUDE6_DEPTH, mode=Mode.SUBTRACT)

    # Sketch15 → Cut-Extrude7 (cut)
    with BuildSketch(Plane.XZ.offset(43.198379139)):
        with Locations((6.3, 2)):
            Rectangle(SKETCH15_W, SKETCH15_H)
    extrude(amount=-CUT_EXTRUDE7_DEPTH, mode=Mode.SUBTRACT)

    # Sketch16 → Boss-Extrude7 (add)
    with BuildSketch(Plane.XY):
        with Locations((-6.35, -31.298379139)):
            Rectangle(SKETCH16_W, SKETCH16_H)
        with Locations((-6.35, -31.298379139)):
            Rectangle(SKETCH16_W_2, SKETCH16_H_2, mode=Mode.SUBTRACT)
    extrude(amount=BOSS_EXTRUDE7_DEPTH)

    # Sketch17 → Cut-Extrude8 (cut)
    with BuildSketch(Plane.XZ.offset(70.398379139)):
        with Locations((-6.35, 5)):
            Rectangle(SKETCH17_W, SKETCH17_H)
    extrude(amount=-CUT_EXTRUDE8_DEPTH, mode=Mode.SUBTRACT)

    # Sketch18 → Cut-Extrude9 (cut, up to next)
    with BuildSketch(Plane(origin=(0, 7.801620861, 0), x_dir=(1, 0, 0), z_dir=(0, 1, 0)), mode=Mode.PRIVATE) as cut_extrude9_sk1:
        with Locations((-6.35, -5)):
            Rectangle(SKETCH18_W, SKETCH18_H)
    cut_extrude9_tool1 = extrude(cut_extrude9_sk1.sketch, amount=-CUT_EXTRUDE9_REACH, mode=Mode.PRIVATE) & part.part
    add(cut_extrude9_tool1.solids().sort_by_distance((-6.35, 7.801621, 5))[0], mode=Mode.SUBTRACT)

    # Sketch19 → Cut-Extrude10 (cut, up to next)
    with BuildSketch(Plane.ZY.offset(17.5), mode=Mode.PRIVATE) as cut_extrude10_sk1:
        with Locations((5, -31.298379139)):
            Rectangle(SKETCH19_W, SKETCH19_H)
    cut_extrude10_tool1 = extrude(cut_extrude10_sk1.sketch, amount=-CUT_EXTRUDE10_REACH, mode=Mode.PRIVATE) & part.part
    add(cut_extrude10_tool1.solids().sort_by_distance((-17.5, -31.298379, 5))[0], mode=Mode.SUBTRACT)

    # Sketch20 → Cut-Extrude11 (cut, up to next)
    with BuildSketch(Plane(origin=(4.8, 0, 0), x_dir=(0, 0, -1), z_dir=(1, 0, 0)), mode=Mode.PRIVATE) as cut_extrude11_sk1:
        with Locations((-5, -31.298379139)):
            Rectangle(SKETCH20_W, SKETCH20_H)
    cut_extrude11_tool1 = extrude(cut_extrude11_sk1.sketch, amount=-CUT_EXTRUDE11_REACH, mode=Mode.PRIVATE) & part.part
    add(cut_extrude11_tool1.solids().sort_by_distance((4.8, -31.298379, 5))[0], mode=Mode.SUBTRACT)

    # Sketch21 → Boss-Extrude8 (add)
    with BuildSketch(Plane.XY):
        with Locations((-15.75, 6.051620861)):
            Rectangle(SKETCH21_W, SKETCH21_H)
        with Locations((3.05, 6.051620861)):
            Rectangle(SKETCH21_W, SKETCH21_H)
        with Locations((3.05, -68.648379139)):
            Rectangle(SKETCH21_W, SKETCH21_H)
        with Locations((-15.75, -68.648379139)):
            Rectangle(SKETCH21_W, SKETCH21_H)
    extrude(amount=BOSS_EXTRUDE8_DEPTH)


solid = part.part
